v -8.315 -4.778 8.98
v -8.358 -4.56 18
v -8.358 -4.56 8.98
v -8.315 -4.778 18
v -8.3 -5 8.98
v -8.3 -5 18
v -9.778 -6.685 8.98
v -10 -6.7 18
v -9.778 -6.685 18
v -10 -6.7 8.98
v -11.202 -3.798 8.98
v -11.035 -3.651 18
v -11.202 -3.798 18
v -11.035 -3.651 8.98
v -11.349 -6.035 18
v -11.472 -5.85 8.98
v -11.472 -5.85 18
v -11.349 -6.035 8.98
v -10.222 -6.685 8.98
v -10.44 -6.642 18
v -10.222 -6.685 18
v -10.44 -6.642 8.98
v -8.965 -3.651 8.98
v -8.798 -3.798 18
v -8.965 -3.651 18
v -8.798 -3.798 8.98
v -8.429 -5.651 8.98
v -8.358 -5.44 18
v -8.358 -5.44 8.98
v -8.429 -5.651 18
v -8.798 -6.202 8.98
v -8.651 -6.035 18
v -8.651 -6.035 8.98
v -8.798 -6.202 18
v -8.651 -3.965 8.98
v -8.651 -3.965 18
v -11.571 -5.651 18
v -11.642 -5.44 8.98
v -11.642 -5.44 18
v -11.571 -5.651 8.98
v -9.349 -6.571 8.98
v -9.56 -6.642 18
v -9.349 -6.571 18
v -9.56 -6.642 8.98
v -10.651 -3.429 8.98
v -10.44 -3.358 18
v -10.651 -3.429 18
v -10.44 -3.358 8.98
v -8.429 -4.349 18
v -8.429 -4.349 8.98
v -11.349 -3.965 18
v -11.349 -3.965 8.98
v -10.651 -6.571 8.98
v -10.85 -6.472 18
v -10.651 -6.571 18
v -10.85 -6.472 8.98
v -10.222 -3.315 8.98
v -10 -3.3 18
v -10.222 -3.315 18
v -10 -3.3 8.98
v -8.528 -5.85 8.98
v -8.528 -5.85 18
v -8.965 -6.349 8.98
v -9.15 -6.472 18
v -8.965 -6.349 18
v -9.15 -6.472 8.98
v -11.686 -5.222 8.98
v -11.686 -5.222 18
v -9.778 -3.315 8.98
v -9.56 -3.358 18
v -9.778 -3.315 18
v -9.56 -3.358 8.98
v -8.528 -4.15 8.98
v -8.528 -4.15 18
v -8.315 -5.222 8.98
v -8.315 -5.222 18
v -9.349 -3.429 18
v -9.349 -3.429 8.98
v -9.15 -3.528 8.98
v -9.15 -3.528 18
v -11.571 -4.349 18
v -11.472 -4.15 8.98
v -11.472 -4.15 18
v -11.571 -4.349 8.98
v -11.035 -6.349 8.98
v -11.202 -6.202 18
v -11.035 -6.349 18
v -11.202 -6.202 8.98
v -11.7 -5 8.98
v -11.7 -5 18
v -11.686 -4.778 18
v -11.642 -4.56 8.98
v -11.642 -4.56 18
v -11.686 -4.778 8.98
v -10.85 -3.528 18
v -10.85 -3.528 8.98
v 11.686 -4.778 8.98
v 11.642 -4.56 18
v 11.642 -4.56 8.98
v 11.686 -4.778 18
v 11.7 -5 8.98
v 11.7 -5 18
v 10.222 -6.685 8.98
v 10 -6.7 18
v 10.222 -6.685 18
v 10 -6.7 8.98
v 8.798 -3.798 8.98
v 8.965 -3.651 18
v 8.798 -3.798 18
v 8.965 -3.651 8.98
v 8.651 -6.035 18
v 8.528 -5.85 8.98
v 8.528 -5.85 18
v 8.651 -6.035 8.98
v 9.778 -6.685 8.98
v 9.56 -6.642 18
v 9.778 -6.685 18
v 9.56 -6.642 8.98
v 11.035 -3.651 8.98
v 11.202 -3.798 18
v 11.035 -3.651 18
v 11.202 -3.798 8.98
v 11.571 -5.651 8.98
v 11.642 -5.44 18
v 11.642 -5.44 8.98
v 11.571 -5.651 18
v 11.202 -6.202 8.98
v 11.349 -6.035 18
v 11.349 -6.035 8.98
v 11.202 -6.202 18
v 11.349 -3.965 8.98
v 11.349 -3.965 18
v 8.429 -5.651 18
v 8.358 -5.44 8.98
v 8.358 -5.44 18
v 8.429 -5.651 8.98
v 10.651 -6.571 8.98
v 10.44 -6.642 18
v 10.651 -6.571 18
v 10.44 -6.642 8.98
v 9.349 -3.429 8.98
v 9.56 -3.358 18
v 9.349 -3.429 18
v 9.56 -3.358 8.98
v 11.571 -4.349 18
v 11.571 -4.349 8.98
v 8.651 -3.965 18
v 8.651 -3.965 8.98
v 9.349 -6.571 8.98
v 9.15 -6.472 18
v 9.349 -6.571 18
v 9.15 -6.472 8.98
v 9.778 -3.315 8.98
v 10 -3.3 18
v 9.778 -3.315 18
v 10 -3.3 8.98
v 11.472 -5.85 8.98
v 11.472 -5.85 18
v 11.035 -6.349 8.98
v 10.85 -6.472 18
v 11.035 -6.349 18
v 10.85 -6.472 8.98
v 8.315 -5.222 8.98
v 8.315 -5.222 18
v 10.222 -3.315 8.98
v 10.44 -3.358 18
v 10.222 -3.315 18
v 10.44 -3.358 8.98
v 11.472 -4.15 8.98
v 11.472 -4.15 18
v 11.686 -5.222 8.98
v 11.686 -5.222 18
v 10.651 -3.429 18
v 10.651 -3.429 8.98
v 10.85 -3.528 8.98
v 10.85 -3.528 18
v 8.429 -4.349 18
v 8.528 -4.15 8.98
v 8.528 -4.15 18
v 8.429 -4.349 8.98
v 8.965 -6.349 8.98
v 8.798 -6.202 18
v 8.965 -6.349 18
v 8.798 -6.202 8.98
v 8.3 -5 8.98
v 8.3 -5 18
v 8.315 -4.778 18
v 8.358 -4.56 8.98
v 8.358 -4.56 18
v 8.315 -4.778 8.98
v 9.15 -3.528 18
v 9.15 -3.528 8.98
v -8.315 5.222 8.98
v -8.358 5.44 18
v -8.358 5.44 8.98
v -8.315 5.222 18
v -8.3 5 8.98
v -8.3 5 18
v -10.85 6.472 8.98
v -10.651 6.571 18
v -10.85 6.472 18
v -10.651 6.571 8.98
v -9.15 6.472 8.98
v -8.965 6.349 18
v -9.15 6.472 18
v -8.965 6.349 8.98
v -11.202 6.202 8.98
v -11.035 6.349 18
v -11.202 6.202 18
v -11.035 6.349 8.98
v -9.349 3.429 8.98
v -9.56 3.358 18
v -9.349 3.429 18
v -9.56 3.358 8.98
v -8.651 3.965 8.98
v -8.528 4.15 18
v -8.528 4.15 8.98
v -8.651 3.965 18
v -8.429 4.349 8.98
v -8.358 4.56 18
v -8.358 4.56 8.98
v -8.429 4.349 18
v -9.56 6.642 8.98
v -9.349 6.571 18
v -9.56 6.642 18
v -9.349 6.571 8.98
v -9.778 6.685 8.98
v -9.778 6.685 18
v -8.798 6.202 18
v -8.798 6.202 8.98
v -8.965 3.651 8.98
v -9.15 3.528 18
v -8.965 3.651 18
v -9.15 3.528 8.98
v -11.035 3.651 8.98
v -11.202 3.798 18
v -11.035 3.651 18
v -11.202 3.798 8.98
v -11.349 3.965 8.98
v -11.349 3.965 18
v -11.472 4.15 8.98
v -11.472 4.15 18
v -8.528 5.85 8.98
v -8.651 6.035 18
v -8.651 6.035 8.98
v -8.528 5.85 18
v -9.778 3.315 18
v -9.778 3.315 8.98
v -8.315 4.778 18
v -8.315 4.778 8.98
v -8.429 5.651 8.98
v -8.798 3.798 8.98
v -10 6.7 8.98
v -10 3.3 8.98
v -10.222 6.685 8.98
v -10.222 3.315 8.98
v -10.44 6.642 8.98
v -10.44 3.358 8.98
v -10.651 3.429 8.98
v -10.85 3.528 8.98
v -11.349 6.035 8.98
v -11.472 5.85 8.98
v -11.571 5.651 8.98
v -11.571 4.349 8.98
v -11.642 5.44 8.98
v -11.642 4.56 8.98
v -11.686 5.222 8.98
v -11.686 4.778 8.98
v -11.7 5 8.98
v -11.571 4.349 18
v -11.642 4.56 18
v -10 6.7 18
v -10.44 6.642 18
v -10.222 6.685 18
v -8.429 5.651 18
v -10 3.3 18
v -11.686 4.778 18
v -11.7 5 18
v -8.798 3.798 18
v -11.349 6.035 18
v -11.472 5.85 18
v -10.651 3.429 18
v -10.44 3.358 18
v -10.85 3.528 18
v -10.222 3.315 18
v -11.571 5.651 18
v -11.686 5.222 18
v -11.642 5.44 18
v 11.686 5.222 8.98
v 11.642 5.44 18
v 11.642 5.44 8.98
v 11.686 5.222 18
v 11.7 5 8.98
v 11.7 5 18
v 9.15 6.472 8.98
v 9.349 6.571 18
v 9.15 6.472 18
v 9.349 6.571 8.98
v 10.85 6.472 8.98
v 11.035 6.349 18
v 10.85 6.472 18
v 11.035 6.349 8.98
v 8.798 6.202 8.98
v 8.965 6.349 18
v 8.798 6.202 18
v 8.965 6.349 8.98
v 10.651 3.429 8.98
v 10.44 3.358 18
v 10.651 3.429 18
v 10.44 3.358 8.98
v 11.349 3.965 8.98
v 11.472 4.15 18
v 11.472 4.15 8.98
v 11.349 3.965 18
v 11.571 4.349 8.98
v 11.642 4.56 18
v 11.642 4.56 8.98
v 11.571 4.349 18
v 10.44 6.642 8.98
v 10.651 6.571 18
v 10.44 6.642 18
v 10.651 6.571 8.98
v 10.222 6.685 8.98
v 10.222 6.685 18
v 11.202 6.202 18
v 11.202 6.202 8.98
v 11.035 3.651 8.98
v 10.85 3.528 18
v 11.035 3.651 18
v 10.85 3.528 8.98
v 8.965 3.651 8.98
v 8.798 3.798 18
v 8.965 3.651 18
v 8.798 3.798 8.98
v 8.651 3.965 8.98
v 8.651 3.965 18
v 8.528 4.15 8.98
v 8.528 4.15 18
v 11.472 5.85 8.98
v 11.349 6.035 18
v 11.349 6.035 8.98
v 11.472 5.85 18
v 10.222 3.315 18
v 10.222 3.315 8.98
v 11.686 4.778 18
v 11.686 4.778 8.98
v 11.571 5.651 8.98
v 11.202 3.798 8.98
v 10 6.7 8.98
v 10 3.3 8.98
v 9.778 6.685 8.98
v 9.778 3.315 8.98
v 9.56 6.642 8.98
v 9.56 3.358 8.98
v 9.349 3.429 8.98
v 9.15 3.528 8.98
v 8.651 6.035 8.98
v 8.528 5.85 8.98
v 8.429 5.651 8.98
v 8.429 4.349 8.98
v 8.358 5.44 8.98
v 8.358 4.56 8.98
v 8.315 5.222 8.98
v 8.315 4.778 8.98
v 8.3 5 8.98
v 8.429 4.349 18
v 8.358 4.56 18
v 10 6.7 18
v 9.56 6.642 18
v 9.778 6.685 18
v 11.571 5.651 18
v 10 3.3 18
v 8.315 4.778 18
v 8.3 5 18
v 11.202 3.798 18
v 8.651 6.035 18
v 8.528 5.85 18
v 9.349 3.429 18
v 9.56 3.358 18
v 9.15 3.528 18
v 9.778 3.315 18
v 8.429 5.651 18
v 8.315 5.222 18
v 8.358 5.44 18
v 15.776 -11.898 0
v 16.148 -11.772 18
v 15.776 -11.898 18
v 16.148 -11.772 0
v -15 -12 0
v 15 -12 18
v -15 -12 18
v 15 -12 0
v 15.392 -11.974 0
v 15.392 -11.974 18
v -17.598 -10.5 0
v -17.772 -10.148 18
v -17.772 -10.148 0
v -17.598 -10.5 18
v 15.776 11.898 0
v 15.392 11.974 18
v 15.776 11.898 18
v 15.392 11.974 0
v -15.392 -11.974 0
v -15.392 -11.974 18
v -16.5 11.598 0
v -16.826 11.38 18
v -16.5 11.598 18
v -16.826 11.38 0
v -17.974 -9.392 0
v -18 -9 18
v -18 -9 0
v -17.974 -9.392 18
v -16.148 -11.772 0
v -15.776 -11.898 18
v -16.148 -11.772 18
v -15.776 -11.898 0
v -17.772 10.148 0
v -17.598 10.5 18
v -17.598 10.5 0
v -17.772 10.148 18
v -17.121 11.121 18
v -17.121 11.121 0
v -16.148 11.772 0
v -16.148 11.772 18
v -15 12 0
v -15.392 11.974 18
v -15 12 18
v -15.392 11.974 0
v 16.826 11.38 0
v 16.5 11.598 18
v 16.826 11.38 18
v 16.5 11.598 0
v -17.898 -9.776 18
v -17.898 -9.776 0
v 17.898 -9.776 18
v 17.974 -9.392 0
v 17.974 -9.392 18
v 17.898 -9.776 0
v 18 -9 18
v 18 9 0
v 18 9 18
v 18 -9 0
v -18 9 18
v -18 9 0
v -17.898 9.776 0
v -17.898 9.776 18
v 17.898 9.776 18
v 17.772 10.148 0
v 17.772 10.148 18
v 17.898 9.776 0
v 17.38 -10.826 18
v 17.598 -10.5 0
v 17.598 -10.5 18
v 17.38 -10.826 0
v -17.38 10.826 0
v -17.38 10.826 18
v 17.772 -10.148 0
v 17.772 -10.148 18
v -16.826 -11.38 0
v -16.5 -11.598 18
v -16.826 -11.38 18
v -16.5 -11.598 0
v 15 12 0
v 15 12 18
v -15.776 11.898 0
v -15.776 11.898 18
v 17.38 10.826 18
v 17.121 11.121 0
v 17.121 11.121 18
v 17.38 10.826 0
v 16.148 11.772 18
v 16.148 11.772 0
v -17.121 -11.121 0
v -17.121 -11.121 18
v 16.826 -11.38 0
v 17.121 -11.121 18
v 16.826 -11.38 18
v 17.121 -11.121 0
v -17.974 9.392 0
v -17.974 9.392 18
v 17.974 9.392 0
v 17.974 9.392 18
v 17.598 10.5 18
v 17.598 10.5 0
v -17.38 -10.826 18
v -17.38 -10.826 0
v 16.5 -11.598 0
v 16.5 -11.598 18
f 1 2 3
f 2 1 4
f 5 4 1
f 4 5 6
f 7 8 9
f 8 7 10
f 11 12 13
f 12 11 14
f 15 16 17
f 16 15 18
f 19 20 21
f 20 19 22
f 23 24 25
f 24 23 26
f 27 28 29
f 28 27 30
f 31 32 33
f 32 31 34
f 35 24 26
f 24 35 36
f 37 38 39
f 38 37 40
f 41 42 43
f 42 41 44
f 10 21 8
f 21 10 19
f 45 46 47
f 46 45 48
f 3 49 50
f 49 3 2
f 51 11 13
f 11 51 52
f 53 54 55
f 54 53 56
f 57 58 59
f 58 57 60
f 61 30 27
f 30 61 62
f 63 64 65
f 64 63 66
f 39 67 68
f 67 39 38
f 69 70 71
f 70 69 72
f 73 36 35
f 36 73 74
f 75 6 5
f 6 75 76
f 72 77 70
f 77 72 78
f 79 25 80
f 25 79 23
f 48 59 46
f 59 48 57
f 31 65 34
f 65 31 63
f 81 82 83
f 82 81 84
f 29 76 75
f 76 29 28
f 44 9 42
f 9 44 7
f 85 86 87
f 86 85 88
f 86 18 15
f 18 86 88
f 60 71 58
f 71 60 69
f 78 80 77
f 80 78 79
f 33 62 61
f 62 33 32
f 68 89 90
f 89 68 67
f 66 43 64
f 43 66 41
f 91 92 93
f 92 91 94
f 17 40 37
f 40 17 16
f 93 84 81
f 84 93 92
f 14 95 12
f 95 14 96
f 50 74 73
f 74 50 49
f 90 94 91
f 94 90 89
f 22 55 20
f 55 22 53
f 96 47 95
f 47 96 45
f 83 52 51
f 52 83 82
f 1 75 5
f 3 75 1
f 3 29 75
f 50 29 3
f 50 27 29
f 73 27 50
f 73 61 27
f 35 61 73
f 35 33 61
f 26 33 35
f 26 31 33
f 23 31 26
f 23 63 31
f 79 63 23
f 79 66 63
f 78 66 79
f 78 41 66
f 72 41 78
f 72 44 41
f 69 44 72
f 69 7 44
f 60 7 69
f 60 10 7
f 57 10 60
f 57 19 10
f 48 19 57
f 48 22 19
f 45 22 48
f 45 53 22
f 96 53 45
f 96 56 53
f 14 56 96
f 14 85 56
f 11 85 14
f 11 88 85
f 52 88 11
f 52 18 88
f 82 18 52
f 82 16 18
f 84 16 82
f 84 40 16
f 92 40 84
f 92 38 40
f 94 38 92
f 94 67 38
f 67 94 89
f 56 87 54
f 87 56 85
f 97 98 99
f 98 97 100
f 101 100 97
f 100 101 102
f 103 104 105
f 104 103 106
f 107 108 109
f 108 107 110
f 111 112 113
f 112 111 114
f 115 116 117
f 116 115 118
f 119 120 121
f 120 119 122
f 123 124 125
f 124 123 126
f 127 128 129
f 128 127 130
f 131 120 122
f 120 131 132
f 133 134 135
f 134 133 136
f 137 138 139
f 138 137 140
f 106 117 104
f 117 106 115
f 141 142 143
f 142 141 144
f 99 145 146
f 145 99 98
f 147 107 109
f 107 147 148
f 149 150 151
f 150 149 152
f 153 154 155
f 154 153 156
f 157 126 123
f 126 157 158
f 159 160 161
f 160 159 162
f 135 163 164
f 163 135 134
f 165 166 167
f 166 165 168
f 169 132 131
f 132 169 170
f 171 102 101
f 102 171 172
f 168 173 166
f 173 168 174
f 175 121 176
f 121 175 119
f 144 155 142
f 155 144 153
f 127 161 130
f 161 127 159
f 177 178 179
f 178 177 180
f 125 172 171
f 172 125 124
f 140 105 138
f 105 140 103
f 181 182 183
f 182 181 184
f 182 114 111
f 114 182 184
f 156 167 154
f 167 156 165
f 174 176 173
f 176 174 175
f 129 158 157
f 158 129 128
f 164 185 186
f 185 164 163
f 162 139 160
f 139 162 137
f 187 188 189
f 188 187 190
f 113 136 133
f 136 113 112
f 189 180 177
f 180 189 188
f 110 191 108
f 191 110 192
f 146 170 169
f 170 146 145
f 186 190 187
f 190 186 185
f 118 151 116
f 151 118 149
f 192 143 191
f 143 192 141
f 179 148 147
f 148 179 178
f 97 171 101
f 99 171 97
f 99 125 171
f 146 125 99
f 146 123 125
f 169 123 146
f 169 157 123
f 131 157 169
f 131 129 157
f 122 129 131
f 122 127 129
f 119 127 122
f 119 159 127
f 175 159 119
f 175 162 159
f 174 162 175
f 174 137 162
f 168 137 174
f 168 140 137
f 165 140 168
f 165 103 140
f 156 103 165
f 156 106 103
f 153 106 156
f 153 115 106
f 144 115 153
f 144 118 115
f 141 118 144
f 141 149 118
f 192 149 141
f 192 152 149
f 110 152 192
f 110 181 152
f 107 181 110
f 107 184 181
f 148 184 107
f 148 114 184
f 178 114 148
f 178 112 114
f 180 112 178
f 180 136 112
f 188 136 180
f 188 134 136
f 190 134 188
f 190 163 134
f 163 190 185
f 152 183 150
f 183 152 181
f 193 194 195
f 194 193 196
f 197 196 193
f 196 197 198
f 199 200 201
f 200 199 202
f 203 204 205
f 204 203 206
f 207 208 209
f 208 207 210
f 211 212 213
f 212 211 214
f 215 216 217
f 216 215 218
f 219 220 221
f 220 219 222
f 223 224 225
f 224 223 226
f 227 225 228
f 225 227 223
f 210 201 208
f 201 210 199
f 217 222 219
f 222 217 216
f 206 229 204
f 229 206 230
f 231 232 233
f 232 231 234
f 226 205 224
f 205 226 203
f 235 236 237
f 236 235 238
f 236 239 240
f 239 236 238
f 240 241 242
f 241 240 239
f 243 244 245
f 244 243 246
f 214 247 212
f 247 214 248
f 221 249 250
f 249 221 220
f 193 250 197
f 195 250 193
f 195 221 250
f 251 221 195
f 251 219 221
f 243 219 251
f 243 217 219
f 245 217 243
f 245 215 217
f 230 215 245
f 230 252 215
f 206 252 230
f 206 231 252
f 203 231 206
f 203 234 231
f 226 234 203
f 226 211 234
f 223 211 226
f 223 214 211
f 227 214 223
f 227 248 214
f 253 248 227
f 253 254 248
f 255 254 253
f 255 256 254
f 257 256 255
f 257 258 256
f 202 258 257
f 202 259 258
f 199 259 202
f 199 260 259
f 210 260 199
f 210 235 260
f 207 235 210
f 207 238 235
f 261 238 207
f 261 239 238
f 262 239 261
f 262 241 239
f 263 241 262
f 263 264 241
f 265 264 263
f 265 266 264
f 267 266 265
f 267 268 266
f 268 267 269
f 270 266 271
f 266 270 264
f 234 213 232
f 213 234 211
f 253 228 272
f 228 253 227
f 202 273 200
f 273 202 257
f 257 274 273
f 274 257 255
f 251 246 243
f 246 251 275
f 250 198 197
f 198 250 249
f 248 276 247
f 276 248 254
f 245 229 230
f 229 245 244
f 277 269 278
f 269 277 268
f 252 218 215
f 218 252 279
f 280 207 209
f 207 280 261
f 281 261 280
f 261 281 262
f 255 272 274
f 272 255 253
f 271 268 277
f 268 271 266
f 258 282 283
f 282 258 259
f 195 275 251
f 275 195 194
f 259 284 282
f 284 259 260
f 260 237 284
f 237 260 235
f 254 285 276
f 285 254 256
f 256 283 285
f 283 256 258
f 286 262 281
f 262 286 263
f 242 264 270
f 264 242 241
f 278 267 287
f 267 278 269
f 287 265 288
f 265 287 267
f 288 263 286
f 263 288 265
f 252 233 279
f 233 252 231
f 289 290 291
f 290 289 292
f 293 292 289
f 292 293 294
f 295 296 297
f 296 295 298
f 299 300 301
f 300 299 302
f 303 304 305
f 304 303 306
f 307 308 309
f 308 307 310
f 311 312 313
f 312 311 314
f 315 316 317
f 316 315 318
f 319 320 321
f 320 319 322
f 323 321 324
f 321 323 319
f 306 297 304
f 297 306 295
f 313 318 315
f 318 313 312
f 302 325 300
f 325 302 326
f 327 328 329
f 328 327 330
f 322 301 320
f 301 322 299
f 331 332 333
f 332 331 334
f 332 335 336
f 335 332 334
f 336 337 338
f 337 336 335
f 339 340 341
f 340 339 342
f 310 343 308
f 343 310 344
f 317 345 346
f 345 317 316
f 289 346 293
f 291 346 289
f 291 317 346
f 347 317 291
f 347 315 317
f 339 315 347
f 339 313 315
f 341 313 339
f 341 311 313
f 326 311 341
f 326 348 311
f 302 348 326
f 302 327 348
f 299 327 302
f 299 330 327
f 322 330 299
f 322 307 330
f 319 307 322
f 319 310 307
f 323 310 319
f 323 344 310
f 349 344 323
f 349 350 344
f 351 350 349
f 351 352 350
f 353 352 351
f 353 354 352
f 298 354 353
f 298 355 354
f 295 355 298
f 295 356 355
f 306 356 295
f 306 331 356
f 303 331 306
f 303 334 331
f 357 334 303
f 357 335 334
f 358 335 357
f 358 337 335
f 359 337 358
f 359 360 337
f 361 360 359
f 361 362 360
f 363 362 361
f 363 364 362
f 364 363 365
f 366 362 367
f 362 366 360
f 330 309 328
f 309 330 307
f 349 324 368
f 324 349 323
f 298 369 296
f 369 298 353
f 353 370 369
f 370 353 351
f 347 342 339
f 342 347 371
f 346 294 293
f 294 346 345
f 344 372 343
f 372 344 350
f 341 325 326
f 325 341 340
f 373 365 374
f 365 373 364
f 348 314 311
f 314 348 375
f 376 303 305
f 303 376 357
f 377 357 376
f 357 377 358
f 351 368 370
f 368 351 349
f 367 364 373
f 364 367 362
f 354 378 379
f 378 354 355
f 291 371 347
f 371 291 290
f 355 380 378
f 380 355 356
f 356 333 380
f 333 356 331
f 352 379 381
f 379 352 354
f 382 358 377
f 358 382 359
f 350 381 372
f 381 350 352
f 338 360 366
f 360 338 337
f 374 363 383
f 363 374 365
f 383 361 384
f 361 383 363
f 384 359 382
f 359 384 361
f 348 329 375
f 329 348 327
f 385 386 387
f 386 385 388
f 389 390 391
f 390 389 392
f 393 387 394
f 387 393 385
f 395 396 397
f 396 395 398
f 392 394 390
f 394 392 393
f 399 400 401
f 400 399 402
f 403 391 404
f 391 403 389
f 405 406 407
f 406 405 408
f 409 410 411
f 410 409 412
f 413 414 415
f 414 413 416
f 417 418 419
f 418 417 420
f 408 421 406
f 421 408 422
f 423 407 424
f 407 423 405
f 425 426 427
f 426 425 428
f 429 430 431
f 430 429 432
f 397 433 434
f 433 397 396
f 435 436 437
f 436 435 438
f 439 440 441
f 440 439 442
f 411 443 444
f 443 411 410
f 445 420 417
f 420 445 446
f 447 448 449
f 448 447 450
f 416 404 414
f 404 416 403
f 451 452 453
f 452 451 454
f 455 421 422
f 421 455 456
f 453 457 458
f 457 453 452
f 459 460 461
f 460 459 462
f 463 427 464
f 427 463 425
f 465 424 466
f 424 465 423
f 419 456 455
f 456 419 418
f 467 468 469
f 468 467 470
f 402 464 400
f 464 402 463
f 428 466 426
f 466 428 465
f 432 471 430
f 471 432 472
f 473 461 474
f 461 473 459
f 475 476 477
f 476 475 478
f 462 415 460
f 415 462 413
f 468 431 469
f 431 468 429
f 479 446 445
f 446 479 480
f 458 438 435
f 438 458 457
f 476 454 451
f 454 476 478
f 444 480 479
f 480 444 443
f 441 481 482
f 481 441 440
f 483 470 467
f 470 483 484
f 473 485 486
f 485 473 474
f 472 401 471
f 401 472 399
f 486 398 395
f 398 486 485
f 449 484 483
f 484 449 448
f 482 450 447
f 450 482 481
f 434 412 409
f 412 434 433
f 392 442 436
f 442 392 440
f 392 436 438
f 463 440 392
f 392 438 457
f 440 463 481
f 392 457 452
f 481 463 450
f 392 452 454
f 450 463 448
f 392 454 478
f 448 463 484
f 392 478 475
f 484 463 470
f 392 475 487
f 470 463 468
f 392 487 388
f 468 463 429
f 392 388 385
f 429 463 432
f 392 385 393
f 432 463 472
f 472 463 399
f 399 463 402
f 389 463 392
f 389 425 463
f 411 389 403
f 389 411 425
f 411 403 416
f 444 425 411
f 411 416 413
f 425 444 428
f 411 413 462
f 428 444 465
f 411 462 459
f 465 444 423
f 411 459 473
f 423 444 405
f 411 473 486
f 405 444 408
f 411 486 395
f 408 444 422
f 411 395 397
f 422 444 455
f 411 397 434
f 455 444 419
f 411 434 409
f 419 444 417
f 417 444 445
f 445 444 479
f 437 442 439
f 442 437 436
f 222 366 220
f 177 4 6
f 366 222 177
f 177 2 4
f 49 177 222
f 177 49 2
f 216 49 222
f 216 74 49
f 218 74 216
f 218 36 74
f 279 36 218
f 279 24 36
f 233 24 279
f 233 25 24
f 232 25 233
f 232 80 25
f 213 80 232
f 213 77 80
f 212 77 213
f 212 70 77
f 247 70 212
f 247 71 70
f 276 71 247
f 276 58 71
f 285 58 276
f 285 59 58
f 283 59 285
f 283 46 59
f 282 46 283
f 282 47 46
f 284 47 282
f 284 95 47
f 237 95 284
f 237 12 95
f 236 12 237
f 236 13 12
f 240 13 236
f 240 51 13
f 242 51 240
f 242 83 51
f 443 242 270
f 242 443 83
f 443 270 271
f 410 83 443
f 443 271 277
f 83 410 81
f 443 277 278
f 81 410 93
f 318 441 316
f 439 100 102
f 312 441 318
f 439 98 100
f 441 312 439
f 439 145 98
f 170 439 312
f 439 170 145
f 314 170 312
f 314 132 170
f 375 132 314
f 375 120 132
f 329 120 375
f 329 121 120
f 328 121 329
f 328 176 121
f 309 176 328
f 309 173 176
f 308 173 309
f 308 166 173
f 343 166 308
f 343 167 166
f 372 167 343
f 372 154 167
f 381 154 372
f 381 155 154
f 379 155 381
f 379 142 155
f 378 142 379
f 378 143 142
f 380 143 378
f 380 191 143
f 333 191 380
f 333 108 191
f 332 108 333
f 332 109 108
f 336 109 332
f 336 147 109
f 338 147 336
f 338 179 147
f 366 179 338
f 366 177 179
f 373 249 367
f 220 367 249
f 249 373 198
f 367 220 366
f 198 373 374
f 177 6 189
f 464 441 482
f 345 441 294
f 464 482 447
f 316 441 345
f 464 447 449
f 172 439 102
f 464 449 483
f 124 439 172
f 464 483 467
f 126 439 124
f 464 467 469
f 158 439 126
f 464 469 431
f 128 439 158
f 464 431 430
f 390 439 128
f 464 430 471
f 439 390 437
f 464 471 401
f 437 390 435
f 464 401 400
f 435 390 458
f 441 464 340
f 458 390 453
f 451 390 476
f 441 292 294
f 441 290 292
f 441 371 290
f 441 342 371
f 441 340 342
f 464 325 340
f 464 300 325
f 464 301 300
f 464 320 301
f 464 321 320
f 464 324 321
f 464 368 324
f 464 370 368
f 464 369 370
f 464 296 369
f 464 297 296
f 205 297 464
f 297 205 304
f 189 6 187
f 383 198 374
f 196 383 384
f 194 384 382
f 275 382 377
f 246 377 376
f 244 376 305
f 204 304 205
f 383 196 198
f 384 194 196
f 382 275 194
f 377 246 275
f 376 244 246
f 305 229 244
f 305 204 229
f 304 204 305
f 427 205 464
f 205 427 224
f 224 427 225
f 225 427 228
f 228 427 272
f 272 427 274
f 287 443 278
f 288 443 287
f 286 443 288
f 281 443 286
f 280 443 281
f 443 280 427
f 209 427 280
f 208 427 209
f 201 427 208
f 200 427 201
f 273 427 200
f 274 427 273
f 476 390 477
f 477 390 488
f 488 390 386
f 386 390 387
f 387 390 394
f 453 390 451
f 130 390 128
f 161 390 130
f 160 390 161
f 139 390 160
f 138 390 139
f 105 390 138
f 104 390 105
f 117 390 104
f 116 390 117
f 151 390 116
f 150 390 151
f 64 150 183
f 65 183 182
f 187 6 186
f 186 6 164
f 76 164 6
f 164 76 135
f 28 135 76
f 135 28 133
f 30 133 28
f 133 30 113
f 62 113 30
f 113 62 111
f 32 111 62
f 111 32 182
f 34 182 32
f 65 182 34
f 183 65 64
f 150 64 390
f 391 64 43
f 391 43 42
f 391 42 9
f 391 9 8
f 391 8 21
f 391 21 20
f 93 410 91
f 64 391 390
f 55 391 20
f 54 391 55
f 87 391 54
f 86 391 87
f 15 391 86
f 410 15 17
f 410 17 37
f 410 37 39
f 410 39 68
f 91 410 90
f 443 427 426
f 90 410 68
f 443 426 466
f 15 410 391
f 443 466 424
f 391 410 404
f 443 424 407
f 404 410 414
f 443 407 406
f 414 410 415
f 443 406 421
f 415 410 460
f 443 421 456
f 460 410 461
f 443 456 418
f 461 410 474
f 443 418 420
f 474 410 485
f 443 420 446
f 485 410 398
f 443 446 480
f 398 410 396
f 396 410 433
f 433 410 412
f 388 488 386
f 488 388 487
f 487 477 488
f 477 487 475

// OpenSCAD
PART = "lower_hinge_block_left";
include <../fielddeck.scad>;
